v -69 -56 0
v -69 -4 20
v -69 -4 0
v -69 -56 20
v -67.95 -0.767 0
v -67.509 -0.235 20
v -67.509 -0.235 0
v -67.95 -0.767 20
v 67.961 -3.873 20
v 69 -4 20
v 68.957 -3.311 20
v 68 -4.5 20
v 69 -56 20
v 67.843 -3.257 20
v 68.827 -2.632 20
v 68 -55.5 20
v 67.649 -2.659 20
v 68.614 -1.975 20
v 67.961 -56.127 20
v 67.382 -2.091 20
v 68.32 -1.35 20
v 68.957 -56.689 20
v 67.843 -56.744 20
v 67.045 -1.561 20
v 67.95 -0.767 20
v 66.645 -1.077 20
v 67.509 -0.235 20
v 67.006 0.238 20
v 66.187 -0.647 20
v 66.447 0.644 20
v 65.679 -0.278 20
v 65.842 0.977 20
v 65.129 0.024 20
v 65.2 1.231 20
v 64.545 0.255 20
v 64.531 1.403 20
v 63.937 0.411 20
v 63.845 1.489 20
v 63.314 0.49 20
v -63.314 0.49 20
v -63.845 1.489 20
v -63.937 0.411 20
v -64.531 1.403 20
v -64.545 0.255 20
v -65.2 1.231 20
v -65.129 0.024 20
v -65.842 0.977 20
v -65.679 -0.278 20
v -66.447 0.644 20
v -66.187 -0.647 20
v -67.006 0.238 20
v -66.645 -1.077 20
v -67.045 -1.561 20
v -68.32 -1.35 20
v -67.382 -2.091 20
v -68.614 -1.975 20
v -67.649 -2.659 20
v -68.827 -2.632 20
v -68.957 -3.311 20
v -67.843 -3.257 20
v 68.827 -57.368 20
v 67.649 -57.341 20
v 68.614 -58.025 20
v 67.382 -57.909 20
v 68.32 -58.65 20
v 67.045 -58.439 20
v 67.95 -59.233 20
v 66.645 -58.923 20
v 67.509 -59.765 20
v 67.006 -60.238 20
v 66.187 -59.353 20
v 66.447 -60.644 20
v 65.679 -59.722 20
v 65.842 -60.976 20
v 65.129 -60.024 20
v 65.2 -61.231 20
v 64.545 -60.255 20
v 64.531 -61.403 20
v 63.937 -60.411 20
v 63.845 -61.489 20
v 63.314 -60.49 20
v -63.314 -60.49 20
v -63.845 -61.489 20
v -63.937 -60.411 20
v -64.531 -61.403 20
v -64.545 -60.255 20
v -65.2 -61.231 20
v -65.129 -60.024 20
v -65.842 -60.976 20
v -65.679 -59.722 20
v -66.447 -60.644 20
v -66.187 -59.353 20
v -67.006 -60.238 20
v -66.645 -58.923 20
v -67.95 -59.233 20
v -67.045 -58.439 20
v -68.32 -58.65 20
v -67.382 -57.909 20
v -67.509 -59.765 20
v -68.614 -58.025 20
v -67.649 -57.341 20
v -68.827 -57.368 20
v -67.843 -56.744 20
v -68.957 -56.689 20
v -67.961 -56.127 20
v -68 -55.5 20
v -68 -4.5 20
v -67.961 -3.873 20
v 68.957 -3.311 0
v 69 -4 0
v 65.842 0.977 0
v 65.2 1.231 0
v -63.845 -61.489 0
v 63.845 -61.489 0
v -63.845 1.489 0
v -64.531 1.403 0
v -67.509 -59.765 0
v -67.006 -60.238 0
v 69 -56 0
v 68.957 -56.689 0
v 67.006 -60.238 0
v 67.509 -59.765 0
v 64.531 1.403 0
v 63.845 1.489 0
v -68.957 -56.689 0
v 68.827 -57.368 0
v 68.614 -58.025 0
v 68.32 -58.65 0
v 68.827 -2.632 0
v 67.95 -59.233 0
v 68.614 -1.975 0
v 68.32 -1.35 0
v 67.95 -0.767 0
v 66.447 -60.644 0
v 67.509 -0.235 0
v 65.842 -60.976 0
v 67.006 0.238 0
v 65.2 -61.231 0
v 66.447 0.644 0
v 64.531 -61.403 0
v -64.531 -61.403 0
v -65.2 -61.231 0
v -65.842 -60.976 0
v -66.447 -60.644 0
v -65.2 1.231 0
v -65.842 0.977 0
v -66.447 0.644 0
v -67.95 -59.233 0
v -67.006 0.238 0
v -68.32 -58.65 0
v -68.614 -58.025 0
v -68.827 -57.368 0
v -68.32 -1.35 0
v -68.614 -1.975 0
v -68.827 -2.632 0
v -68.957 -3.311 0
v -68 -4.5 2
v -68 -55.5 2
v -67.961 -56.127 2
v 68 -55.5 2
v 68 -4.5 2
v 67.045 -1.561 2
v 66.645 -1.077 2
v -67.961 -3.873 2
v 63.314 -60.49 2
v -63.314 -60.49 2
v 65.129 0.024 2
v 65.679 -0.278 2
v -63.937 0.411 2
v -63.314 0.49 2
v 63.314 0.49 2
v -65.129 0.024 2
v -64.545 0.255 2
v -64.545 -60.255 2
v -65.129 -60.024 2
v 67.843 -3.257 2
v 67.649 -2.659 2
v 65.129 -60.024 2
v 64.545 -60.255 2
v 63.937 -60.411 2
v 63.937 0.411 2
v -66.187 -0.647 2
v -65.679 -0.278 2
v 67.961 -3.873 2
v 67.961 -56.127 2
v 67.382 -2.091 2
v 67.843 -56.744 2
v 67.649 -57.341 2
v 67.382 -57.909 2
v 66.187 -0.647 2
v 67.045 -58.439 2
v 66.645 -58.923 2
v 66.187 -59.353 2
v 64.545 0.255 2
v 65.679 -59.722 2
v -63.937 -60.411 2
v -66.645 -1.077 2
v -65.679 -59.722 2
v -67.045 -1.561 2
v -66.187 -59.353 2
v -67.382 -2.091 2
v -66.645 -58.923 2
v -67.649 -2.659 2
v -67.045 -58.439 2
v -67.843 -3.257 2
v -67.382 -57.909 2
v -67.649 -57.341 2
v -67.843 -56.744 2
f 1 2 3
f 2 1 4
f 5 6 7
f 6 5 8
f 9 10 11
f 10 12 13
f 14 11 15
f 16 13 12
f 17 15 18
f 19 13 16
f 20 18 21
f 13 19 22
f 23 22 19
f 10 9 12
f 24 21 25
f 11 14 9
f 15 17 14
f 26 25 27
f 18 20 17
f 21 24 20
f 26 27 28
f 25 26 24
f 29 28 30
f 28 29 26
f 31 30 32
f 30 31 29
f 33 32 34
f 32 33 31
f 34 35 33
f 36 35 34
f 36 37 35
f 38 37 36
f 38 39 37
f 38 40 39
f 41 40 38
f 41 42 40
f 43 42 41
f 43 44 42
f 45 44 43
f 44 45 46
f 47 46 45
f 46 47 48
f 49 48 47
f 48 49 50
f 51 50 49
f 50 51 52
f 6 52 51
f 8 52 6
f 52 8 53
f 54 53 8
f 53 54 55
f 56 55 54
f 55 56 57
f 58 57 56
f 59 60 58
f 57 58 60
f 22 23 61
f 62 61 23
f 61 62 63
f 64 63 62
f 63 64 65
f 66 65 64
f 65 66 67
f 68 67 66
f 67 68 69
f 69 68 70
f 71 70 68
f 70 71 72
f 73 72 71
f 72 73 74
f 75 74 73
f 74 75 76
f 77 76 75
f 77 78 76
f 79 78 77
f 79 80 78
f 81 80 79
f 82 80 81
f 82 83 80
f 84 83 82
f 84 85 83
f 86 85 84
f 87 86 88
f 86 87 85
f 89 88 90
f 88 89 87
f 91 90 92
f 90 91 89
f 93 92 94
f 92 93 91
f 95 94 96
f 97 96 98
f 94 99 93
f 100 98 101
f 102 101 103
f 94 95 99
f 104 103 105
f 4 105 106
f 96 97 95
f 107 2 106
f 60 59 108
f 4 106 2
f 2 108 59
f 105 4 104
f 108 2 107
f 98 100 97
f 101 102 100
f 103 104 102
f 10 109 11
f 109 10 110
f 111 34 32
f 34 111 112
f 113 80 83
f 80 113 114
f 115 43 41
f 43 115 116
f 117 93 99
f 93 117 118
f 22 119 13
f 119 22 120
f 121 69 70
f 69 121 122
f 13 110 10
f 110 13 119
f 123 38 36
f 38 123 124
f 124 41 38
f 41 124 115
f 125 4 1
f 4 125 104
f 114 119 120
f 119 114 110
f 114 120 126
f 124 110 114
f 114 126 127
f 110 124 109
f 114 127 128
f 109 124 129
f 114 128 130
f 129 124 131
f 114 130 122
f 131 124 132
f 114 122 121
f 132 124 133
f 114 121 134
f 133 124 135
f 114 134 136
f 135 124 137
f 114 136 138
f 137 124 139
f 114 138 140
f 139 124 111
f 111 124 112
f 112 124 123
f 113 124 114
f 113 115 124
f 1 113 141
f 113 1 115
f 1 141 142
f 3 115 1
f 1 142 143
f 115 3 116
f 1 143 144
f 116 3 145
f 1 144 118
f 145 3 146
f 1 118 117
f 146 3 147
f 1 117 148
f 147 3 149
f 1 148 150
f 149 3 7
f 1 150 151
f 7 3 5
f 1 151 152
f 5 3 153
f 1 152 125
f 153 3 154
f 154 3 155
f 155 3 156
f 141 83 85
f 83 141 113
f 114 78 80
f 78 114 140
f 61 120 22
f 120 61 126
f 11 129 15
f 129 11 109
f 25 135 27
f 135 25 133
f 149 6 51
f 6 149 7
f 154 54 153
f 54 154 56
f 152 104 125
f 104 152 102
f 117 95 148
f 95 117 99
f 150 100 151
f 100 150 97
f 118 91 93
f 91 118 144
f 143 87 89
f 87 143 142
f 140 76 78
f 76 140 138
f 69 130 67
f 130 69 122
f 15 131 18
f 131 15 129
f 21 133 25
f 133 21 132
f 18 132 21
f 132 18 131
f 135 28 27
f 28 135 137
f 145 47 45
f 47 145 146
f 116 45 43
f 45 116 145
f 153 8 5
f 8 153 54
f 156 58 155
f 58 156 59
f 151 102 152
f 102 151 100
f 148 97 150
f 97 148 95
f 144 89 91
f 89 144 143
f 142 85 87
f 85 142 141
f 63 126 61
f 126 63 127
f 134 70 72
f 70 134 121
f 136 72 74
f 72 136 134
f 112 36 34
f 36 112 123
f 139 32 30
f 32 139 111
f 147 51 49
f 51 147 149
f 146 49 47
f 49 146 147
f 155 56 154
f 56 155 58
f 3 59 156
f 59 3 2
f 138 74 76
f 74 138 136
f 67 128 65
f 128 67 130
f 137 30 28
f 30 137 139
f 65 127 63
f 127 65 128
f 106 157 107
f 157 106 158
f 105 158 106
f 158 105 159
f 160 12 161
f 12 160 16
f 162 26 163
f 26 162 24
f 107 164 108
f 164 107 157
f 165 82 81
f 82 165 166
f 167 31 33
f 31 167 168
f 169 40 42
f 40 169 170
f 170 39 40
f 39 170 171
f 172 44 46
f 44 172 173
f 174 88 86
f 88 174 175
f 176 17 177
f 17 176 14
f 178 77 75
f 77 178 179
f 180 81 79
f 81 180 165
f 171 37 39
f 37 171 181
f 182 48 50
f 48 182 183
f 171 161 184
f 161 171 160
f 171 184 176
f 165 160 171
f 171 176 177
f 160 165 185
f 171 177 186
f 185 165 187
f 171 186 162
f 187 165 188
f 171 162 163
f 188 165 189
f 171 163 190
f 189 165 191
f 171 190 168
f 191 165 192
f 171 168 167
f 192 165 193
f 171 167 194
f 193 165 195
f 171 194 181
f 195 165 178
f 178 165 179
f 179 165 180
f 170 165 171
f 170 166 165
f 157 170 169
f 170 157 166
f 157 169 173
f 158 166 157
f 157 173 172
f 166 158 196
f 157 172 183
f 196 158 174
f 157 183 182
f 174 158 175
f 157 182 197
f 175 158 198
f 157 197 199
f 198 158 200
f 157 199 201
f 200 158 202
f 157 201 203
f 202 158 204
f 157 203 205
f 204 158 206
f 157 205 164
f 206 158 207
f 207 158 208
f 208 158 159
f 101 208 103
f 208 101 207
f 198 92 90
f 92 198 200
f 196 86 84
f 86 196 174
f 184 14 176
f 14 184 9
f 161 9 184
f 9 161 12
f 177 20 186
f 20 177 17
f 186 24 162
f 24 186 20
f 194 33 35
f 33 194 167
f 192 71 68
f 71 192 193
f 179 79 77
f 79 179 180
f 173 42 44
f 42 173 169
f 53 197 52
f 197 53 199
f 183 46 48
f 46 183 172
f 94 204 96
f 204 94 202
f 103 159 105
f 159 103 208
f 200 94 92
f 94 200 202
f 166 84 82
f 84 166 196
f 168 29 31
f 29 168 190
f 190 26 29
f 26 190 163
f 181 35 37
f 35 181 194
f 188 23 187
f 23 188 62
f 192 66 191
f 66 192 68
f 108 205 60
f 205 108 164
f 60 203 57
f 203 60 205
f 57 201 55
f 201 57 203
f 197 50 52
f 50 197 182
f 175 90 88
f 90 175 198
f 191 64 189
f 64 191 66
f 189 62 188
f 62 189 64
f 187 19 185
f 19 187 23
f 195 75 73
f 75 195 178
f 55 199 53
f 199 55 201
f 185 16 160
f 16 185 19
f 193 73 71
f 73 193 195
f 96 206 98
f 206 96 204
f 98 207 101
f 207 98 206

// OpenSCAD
$fn = 50;


difference() {
	union() {
		translate(v = [0, -30.0000000000, 0]) {
			hull() {
				translate(v = [-63.5000000000, 26.0000000000, 0]) {
					cylinder(h = 20, r = 5.5000000000);
				}
				translate(v = [63.5000000000, 26.0000000000, 0]) {
					cylinder(h = 20, r = 5.5000000000);
				}
				translate(v = [-63.5000000000, -26.0000000000, 0]) {
					cylinder(h = 20, r = 5.5000000000);
				}
				translate(v = [63.5000000000, -26.0000000000, 0]) {
					cylinder(h = 20, r = 5.5000000000);
				}
			}
		}
	}
	union() {
		translate(v = [0, -30.0000000000, 2]) {
			hull() {
				translate(v = [-63.0000000000, 25.5000000000, 0]) {
					cylinder(h = 40, r = 5);
				}
				translate(v = [63.0000000000, 25.5000000000, 0]) {
					cylinder(h = 40, r = 5);
				}
				translate(v = [-63.0000000000, -25.5000000000, 0]) {
					cylinder(h = 40, r = 5);
				}
				translate(v = [63.0000000000, -25.5000000000, 0]) {
					cylinder(h = 40, r = 5);
				}
			}
		}
	}
}
